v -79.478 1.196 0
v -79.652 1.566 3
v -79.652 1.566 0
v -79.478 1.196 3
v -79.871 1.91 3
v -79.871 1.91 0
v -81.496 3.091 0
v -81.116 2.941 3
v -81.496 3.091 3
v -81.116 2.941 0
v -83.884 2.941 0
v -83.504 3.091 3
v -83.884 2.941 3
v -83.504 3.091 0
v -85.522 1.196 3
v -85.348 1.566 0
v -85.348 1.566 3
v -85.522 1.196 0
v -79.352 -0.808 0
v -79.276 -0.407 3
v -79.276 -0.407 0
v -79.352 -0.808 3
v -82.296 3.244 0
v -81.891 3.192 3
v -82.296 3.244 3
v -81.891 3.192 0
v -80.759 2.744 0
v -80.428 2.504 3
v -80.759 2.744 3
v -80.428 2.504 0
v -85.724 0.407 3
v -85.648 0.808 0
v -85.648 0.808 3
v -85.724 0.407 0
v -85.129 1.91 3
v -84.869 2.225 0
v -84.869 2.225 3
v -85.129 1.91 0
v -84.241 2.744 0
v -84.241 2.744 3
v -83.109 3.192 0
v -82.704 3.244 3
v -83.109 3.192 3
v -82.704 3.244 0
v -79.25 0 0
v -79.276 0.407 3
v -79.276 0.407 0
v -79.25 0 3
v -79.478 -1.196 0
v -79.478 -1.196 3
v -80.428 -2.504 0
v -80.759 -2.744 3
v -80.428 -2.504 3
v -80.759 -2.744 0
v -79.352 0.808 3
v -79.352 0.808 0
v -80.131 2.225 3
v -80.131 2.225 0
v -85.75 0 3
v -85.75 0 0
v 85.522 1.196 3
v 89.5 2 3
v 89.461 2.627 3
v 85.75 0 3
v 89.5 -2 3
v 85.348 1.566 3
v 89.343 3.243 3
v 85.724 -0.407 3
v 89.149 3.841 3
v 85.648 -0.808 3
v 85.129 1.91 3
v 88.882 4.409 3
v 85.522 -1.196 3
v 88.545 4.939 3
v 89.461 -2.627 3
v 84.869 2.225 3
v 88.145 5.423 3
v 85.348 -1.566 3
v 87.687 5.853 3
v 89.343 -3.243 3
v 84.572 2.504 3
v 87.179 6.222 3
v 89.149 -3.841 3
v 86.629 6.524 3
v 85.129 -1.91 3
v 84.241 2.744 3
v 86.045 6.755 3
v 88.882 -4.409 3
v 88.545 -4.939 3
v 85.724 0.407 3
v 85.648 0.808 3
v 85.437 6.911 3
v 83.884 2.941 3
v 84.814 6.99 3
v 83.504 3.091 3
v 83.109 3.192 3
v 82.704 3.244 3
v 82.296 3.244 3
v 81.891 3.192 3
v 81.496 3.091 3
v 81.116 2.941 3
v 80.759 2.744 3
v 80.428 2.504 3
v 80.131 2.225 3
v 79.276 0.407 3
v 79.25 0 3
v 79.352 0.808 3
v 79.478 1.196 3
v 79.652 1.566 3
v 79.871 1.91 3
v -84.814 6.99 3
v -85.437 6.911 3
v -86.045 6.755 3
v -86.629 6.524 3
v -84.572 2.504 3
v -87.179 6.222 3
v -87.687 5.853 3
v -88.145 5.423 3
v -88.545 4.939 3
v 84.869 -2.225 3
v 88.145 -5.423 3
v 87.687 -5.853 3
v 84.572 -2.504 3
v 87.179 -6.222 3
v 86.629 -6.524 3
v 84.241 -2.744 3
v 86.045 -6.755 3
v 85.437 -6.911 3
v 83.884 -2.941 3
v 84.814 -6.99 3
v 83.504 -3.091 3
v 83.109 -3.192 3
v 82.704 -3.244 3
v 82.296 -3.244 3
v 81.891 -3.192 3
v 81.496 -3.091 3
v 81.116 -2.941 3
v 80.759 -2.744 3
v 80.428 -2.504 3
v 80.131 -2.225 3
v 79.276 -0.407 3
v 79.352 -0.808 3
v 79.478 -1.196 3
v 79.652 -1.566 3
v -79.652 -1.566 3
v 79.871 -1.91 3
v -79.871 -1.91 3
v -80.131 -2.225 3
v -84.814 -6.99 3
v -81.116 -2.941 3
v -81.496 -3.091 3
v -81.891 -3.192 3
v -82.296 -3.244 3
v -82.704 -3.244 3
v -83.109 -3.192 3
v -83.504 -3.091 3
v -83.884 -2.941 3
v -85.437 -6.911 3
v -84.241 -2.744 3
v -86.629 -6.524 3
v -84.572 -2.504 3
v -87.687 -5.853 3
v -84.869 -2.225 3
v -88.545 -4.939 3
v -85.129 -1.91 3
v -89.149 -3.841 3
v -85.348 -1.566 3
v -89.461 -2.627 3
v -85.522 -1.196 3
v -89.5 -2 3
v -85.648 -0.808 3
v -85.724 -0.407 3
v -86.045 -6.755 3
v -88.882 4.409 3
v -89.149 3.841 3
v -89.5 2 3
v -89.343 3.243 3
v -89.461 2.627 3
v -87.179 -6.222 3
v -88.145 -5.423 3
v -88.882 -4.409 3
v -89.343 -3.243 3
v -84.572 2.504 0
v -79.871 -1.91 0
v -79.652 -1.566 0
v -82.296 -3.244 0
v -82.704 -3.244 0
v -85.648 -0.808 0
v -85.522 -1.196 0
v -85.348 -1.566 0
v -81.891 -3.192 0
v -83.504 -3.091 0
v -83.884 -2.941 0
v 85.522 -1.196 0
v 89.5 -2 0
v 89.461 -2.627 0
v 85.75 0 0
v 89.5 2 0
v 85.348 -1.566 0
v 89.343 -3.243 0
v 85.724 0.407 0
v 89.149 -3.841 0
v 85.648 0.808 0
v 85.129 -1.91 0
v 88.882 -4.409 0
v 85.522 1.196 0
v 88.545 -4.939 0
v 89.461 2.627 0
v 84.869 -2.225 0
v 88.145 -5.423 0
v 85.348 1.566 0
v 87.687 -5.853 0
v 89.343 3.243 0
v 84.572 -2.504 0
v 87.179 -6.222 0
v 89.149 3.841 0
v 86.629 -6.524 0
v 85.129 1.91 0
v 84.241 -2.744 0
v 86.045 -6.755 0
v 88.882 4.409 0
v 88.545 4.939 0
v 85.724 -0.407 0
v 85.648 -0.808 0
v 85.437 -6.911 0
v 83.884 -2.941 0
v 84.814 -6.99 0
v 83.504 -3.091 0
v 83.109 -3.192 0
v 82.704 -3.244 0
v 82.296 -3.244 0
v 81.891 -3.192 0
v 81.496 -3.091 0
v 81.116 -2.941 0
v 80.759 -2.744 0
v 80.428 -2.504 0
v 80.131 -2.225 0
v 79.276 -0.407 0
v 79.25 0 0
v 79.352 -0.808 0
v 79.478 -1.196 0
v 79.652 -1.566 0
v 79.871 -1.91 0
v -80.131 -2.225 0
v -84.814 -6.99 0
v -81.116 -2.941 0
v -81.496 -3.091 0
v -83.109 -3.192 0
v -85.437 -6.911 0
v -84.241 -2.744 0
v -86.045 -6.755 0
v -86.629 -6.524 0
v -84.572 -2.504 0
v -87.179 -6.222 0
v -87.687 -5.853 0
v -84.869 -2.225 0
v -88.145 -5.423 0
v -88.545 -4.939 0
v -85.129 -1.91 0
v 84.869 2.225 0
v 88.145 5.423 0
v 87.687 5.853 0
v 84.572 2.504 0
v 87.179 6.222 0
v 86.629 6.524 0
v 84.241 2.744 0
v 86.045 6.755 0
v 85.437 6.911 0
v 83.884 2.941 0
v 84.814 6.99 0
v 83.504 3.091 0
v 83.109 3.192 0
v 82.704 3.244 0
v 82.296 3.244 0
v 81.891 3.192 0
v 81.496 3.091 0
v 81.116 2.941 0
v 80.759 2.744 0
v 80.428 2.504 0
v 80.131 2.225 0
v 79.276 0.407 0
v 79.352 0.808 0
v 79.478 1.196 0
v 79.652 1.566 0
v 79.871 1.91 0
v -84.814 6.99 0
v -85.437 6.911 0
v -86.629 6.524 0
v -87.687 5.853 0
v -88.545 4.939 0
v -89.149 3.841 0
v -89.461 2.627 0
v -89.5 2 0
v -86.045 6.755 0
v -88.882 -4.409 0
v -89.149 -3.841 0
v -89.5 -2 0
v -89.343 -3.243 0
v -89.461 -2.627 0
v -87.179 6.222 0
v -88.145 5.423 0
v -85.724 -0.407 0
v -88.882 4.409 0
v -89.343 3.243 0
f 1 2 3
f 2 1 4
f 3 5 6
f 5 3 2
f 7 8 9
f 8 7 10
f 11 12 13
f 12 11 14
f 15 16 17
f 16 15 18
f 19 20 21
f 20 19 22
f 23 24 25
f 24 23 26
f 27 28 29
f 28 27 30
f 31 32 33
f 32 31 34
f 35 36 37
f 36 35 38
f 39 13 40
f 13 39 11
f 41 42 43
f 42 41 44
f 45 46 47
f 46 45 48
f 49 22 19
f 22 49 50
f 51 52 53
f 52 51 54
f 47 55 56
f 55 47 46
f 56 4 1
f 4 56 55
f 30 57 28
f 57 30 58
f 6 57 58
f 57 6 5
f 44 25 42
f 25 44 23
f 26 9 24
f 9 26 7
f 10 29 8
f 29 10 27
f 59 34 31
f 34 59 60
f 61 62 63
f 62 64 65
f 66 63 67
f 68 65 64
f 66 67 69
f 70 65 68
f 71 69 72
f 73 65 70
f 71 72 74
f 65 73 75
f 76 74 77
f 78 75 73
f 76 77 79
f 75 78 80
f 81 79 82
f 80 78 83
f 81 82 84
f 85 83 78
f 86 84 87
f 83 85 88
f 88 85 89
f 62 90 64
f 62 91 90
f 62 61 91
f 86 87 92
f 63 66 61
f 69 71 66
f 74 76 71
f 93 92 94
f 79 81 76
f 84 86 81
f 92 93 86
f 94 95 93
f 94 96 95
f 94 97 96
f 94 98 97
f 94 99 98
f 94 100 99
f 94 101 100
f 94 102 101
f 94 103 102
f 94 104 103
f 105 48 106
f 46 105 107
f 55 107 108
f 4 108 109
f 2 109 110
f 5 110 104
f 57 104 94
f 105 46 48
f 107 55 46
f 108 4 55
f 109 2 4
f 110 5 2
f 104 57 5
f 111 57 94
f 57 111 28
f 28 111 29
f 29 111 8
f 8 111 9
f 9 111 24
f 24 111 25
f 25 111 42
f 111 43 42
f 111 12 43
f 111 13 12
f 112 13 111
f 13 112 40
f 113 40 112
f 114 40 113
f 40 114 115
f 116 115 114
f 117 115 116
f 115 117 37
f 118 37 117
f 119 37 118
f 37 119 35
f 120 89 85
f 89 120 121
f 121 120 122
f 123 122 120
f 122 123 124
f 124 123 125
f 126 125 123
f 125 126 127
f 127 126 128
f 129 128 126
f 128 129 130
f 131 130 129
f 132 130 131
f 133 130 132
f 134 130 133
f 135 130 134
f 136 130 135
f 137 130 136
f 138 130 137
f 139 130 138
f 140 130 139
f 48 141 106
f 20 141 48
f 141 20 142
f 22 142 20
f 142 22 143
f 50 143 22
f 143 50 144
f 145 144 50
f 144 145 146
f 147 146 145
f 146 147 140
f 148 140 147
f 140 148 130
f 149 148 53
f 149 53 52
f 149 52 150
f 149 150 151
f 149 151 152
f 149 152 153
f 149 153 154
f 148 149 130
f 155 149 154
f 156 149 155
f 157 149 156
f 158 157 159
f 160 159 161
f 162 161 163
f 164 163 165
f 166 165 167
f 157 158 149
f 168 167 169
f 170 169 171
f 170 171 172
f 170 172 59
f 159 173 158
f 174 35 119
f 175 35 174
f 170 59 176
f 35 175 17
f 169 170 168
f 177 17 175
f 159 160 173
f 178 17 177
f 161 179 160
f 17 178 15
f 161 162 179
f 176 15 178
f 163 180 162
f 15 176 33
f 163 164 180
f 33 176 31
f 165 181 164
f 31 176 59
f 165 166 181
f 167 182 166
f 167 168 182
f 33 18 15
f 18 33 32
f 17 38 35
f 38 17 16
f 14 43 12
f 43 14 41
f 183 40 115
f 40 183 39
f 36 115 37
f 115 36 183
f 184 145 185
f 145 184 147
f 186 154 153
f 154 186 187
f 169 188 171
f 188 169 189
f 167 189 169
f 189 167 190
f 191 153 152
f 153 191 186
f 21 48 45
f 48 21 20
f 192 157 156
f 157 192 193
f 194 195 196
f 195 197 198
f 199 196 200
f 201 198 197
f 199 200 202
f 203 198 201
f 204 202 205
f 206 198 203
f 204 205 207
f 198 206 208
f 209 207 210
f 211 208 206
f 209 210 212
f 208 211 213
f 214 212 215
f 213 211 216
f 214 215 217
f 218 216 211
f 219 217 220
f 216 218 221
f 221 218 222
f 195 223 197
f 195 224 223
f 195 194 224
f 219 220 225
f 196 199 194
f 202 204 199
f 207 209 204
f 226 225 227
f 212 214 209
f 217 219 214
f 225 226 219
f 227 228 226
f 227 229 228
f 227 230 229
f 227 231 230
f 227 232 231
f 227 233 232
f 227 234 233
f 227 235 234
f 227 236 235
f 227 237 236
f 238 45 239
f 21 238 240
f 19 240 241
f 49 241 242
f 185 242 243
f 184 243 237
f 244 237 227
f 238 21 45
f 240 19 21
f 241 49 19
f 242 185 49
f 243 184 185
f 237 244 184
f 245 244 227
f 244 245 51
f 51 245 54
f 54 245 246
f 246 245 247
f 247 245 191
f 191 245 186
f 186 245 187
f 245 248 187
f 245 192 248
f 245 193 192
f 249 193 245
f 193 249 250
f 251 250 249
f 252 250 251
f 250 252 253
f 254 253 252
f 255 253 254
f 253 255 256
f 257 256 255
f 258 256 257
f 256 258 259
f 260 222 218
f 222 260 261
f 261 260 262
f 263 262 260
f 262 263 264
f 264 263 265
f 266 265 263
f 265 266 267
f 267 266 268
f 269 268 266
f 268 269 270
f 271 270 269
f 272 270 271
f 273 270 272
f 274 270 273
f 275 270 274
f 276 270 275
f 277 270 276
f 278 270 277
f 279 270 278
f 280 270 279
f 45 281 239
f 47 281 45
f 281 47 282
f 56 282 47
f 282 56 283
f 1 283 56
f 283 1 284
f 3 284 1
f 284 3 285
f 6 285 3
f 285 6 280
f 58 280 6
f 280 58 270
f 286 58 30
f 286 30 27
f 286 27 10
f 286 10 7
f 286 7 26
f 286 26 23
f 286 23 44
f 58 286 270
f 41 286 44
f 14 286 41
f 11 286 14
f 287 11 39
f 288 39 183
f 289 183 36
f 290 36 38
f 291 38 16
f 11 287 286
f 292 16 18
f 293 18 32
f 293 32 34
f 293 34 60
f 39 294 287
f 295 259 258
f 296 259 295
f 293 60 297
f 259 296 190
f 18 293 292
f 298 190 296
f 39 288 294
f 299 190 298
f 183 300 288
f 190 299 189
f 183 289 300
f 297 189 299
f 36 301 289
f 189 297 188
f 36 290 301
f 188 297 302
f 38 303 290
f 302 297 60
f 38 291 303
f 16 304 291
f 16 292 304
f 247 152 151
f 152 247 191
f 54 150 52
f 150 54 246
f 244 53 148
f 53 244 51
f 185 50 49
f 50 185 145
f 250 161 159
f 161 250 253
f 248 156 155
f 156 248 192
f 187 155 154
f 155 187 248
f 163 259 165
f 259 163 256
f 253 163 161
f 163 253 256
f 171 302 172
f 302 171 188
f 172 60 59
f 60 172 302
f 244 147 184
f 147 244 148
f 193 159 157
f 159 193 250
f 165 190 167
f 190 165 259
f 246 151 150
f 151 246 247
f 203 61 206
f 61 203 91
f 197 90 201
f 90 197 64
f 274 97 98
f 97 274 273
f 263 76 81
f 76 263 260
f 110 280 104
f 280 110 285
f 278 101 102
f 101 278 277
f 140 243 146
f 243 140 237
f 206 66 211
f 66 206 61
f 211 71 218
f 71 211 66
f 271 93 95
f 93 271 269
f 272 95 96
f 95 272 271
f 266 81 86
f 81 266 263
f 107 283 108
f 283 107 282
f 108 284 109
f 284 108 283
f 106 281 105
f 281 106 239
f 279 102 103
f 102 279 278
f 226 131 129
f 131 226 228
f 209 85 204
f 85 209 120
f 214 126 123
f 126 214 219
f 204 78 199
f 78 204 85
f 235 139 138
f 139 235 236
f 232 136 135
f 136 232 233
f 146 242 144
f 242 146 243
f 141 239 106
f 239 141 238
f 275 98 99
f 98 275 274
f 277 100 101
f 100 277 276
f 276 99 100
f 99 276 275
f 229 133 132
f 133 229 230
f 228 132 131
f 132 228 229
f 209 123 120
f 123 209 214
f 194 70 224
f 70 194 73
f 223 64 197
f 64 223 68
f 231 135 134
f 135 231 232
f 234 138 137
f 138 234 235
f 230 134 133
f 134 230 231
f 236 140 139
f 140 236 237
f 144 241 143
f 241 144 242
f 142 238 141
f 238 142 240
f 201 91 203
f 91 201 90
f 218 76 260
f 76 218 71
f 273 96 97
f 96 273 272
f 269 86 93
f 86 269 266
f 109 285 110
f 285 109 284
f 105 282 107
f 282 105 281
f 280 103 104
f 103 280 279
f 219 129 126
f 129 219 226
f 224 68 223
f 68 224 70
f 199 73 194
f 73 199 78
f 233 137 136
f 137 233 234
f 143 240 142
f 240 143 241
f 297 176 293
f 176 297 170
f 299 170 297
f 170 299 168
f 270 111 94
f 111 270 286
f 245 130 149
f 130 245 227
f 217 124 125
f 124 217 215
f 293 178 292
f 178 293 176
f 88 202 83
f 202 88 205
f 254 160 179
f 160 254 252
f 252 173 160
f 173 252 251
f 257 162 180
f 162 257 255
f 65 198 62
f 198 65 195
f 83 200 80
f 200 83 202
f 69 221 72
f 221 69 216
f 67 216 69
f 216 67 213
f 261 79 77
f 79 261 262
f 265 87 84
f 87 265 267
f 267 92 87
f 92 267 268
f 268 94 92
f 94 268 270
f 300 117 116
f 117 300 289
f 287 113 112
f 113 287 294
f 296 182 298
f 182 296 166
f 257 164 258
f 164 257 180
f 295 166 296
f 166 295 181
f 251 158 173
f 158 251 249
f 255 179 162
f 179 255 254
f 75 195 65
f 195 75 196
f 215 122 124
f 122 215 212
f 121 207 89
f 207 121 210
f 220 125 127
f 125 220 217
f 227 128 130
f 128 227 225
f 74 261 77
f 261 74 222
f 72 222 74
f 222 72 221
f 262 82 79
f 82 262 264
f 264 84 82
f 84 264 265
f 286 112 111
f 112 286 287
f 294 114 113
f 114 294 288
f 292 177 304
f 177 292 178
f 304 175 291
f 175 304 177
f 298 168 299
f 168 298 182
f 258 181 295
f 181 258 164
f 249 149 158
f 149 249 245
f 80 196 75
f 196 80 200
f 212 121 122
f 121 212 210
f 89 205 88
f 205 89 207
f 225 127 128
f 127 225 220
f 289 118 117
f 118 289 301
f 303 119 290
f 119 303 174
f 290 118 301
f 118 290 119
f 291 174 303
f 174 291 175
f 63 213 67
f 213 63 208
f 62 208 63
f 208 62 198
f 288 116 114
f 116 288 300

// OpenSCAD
$fn = 50;


difference() {
	union() {
		hull() {
			translate(v = [-84.5000000000, 2.0000000000, 0]) {
				cylinder(h = 3, r = 5);
			}
			translate(v = [84.5000000000, 2.0000000000, 0]) {
				cylinder(h = 3, r = 5);
			}
			translate(v = [-84.5000000000, -2.0000000000, 0]) {
				cylinder(h = 3, r = 5);
			}
			translate(v = [84.5000000000, -2.0000000000, 0]) {
				cylinder(h = 3, r = 5);
			}
		}
	}
	union() {
		translate(v = [-82.5000000000, 0.0000000000, 0]) {
			cylinder(h = 3, r = 3.2500000000);
		}
		translate(v = [82.5000000000, 0.0000000000, 0]) {
			cylinder(h = 3, r = 3.2500000000);
		}
		translate(v = [-82.5000000000, 0.0000000000, 0]) {
			cylinder(h = 3, r = 1.8000000000);
		}
		translate(v = [82.5000000000, 0.0000000000, 0]) {
			cylinder(h = 3, r = 1.8000000000);
		}
		translate(v = [-82.5000000000, 0.0000000000, 0]) {
			cylinder(h = 3, r = 1.8000000000);
		}
		translate(v = [82.5000000000, 0.0000000000, 0]) {
			cylinder(h = 3, r = 1.8000000000);
		}
		translate(v = [-82.5000000000, 0.0000000000, 0]) {
			cylinder(h = 3, r = 1.8000000000);
		}
		translate(v = [82.5000000000, 0.0000000000, 0]) {
			cylinder(h = 3, r = 1.8000000000);
		}
	}
}
